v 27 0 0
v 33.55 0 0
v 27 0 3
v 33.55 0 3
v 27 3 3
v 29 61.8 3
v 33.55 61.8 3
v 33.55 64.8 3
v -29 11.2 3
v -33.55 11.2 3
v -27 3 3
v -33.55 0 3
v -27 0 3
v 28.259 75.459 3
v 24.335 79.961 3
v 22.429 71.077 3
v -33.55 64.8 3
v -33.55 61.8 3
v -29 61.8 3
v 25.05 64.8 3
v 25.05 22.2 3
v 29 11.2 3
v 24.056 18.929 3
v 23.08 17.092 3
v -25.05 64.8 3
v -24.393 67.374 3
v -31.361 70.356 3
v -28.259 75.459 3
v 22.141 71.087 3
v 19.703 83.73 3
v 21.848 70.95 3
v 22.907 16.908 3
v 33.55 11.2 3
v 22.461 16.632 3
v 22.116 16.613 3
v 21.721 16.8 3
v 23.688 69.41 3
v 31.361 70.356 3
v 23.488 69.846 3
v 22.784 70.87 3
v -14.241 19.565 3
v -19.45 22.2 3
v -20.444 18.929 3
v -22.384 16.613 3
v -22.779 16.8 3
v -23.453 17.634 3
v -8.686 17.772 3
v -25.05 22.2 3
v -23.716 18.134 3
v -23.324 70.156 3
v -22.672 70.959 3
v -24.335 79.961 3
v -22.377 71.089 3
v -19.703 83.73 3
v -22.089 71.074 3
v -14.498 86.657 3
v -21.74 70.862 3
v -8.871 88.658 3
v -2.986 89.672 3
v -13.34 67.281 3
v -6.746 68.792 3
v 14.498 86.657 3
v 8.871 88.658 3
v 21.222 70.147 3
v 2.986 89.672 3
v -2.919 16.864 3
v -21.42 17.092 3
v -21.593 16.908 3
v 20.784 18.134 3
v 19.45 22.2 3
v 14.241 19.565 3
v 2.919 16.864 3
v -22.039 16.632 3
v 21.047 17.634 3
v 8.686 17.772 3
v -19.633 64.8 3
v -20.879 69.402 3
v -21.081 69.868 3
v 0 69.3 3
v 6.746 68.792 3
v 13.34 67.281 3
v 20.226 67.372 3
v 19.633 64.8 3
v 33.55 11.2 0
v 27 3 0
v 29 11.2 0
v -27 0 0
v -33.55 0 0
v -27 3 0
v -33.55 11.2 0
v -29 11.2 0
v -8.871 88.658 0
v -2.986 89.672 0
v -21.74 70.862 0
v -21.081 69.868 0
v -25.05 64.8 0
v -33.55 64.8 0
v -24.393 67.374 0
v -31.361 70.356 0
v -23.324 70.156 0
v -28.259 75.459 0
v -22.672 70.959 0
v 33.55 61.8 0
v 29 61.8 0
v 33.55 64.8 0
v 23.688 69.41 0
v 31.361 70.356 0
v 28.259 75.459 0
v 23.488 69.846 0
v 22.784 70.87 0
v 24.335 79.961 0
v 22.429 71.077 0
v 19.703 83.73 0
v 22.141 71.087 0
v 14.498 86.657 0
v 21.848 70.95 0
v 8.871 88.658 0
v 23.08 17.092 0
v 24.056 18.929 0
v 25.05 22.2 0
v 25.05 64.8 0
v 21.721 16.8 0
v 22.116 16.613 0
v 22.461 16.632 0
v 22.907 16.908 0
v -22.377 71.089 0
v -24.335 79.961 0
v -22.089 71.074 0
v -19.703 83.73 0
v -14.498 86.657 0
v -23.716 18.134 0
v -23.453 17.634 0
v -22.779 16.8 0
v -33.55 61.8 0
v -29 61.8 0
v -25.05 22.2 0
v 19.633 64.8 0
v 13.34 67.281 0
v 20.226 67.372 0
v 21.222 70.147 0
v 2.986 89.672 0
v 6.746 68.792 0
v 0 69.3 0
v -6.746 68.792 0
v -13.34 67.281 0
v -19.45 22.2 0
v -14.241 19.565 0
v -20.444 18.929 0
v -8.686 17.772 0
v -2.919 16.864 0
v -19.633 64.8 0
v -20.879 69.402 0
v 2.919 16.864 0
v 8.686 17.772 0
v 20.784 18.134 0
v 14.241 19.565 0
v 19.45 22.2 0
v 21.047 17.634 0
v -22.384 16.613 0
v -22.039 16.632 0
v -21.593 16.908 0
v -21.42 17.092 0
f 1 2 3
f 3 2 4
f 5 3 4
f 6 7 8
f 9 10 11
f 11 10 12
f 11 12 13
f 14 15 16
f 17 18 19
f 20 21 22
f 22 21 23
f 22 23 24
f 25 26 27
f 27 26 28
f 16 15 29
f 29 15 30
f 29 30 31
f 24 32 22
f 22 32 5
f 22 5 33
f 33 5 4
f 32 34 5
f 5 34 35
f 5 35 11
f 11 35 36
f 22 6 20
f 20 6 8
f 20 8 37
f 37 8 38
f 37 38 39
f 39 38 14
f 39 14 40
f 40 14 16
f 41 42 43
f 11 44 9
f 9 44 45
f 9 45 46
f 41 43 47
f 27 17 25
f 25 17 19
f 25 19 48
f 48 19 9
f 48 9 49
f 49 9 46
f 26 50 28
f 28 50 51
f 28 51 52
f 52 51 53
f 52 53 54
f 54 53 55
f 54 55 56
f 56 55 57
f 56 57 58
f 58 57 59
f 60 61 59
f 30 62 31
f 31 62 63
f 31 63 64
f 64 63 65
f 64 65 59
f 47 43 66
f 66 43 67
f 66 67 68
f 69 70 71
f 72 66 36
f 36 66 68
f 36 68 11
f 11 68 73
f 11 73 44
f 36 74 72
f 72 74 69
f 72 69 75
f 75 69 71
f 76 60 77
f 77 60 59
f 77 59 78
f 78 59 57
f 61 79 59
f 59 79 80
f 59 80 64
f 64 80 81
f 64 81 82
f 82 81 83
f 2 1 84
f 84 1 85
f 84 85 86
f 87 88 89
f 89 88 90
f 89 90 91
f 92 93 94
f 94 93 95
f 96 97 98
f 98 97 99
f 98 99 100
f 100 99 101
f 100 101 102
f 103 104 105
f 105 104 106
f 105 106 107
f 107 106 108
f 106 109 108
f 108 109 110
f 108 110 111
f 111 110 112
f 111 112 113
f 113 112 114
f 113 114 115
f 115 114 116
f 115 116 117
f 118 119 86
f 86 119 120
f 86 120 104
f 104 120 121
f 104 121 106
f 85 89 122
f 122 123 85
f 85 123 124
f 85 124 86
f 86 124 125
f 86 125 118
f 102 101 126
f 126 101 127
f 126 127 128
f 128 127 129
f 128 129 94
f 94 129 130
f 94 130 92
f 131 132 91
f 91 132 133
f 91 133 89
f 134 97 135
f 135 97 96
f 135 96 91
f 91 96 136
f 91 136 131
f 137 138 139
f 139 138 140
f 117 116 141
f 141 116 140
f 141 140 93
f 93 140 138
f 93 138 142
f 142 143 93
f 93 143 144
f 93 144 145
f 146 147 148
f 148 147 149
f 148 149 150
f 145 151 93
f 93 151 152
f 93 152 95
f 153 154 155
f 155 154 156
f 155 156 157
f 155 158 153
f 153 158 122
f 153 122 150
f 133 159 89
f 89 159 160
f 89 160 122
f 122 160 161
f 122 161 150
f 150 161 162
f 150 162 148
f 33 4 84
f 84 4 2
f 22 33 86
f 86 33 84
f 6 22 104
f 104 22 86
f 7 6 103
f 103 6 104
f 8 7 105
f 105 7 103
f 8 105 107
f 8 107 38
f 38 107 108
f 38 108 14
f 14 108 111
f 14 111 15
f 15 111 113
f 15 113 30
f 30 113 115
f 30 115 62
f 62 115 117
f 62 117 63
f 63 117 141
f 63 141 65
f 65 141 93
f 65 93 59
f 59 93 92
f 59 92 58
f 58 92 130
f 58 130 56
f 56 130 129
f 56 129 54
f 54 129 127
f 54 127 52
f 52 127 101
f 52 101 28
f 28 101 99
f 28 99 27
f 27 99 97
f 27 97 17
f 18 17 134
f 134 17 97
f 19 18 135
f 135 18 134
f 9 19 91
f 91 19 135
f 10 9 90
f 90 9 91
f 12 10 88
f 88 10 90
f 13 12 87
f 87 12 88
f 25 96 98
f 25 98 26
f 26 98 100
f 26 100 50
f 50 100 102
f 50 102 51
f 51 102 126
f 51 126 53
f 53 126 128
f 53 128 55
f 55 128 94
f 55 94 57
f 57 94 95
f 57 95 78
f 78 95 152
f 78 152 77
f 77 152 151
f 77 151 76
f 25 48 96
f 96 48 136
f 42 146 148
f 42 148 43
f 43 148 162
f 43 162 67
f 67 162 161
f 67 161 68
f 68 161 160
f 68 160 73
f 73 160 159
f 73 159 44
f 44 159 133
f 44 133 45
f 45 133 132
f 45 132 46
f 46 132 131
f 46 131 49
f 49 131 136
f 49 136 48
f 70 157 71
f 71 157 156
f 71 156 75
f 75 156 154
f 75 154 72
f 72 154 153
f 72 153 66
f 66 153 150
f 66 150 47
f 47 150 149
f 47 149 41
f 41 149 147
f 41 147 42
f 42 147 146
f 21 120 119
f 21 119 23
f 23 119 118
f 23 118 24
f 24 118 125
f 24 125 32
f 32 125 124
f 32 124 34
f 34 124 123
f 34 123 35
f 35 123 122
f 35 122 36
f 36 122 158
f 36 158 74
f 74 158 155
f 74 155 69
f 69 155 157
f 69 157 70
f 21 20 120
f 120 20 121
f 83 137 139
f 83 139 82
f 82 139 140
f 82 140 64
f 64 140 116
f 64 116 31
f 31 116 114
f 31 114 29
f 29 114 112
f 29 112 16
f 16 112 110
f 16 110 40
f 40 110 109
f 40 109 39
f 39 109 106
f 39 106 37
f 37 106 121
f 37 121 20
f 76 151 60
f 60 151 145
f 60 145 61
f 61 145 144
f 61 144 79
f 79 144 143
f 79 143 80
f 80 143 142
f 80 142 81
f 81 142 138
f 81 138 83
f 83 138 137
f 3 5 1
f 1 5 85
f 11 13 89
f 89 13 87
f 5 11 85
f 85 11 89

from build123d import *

# Parameters (mm, degrees)
BOSS_EXTRUDE1_DEPTH = 3
SKETCH4_W           = 54
SKETCH4_H           = 3
CUT_EXTRUDE1_DEPTH  = 10


with BuildPart() as part:
    # Sketch2 → Boss-Extrude1 (new body)
    with BuildSketch(Plane.XY):
        with BuildLine():
            Line((-33.55, 0), (33.55, 0))
            Line((33.55, 0), (33.55, 11.2))
            Line((33.55, 11.2), (29, 11.2))
            Line((29, 11.2), (29, 61.8))
            Line((29, 61.8), (33.55, 61.8))
            Line((33.55, 61.8), (33.55, 64.8))
            ThreePointArc((33.55, 64.8), (0, 89.8), (-33.55, 64.8))
            Line((-33.55, 64.8), (-33.55, 61.8))
            Line((-33.55, 61.8), (-29, 61.8))
            Line((-29, 61.8), (-29, 11.2))
            Line((-29, 11.2), (-33.55, 11.2))
            Line((-33.55, 11.2), (-33.55, 0))
        make_face()
        with BuildLine():
            Line((-25.05, 64.8), (-25.05, 22.2))
            add(Edge.make_bspline(
                [(-25.05, 22.2), (-22.25, 11), (-19.45, 22.2)],
                knots=[0, 0, 0, 1, 1, 1], degree=2))
            ThreePointArc((-19.45, 22.2), (0, 16.75), (19.45, 22.2))
            add(Edge.make_bspline(
                [(19.45, 22.2), (22.25, 11), (25.05, 22.2)],
                knots=[0, 0, 0, 1, 1, 1], degree=2))
            Line((25.05, 22.2), (25.05, 64.8))
            add(Edge.make_bspline(
                [(19.632941567, 64.8), (22.187059742, 77.400349627), (25.05, 64.8)],
                knots=[0, 0, 0, 1, 1, 1], degree=2))
            ThreePointArc((19.632941567, 64.8), (0, 69.3), (-19.632941567, 64.8))
            add(Edge.make_bspline(
                [(-25.05, 64.8), (-22.187059742, 77.400349627), (-19.632941567, 64.8)],
                knots=[0, 0, 0, 1, 1, 1], degree=2))
        make_face(mode=Mode.SUBTRACT)
    extrude(amount=BOSS_EXTRUDE1_DEPTH)

    # Sketch4 → Cut-Extrude1 (cut)
    with BuildSketch(Plane.XY.offset(3)):
        with Locations((0, 1.5)):
            Rectangle(SKETCH4_W, SKETCH4_H)
    extrude(amount=-CUT_EXTRUDE1_DEPTH, mode=Mode.SUBTRACT)


solid = part.part
